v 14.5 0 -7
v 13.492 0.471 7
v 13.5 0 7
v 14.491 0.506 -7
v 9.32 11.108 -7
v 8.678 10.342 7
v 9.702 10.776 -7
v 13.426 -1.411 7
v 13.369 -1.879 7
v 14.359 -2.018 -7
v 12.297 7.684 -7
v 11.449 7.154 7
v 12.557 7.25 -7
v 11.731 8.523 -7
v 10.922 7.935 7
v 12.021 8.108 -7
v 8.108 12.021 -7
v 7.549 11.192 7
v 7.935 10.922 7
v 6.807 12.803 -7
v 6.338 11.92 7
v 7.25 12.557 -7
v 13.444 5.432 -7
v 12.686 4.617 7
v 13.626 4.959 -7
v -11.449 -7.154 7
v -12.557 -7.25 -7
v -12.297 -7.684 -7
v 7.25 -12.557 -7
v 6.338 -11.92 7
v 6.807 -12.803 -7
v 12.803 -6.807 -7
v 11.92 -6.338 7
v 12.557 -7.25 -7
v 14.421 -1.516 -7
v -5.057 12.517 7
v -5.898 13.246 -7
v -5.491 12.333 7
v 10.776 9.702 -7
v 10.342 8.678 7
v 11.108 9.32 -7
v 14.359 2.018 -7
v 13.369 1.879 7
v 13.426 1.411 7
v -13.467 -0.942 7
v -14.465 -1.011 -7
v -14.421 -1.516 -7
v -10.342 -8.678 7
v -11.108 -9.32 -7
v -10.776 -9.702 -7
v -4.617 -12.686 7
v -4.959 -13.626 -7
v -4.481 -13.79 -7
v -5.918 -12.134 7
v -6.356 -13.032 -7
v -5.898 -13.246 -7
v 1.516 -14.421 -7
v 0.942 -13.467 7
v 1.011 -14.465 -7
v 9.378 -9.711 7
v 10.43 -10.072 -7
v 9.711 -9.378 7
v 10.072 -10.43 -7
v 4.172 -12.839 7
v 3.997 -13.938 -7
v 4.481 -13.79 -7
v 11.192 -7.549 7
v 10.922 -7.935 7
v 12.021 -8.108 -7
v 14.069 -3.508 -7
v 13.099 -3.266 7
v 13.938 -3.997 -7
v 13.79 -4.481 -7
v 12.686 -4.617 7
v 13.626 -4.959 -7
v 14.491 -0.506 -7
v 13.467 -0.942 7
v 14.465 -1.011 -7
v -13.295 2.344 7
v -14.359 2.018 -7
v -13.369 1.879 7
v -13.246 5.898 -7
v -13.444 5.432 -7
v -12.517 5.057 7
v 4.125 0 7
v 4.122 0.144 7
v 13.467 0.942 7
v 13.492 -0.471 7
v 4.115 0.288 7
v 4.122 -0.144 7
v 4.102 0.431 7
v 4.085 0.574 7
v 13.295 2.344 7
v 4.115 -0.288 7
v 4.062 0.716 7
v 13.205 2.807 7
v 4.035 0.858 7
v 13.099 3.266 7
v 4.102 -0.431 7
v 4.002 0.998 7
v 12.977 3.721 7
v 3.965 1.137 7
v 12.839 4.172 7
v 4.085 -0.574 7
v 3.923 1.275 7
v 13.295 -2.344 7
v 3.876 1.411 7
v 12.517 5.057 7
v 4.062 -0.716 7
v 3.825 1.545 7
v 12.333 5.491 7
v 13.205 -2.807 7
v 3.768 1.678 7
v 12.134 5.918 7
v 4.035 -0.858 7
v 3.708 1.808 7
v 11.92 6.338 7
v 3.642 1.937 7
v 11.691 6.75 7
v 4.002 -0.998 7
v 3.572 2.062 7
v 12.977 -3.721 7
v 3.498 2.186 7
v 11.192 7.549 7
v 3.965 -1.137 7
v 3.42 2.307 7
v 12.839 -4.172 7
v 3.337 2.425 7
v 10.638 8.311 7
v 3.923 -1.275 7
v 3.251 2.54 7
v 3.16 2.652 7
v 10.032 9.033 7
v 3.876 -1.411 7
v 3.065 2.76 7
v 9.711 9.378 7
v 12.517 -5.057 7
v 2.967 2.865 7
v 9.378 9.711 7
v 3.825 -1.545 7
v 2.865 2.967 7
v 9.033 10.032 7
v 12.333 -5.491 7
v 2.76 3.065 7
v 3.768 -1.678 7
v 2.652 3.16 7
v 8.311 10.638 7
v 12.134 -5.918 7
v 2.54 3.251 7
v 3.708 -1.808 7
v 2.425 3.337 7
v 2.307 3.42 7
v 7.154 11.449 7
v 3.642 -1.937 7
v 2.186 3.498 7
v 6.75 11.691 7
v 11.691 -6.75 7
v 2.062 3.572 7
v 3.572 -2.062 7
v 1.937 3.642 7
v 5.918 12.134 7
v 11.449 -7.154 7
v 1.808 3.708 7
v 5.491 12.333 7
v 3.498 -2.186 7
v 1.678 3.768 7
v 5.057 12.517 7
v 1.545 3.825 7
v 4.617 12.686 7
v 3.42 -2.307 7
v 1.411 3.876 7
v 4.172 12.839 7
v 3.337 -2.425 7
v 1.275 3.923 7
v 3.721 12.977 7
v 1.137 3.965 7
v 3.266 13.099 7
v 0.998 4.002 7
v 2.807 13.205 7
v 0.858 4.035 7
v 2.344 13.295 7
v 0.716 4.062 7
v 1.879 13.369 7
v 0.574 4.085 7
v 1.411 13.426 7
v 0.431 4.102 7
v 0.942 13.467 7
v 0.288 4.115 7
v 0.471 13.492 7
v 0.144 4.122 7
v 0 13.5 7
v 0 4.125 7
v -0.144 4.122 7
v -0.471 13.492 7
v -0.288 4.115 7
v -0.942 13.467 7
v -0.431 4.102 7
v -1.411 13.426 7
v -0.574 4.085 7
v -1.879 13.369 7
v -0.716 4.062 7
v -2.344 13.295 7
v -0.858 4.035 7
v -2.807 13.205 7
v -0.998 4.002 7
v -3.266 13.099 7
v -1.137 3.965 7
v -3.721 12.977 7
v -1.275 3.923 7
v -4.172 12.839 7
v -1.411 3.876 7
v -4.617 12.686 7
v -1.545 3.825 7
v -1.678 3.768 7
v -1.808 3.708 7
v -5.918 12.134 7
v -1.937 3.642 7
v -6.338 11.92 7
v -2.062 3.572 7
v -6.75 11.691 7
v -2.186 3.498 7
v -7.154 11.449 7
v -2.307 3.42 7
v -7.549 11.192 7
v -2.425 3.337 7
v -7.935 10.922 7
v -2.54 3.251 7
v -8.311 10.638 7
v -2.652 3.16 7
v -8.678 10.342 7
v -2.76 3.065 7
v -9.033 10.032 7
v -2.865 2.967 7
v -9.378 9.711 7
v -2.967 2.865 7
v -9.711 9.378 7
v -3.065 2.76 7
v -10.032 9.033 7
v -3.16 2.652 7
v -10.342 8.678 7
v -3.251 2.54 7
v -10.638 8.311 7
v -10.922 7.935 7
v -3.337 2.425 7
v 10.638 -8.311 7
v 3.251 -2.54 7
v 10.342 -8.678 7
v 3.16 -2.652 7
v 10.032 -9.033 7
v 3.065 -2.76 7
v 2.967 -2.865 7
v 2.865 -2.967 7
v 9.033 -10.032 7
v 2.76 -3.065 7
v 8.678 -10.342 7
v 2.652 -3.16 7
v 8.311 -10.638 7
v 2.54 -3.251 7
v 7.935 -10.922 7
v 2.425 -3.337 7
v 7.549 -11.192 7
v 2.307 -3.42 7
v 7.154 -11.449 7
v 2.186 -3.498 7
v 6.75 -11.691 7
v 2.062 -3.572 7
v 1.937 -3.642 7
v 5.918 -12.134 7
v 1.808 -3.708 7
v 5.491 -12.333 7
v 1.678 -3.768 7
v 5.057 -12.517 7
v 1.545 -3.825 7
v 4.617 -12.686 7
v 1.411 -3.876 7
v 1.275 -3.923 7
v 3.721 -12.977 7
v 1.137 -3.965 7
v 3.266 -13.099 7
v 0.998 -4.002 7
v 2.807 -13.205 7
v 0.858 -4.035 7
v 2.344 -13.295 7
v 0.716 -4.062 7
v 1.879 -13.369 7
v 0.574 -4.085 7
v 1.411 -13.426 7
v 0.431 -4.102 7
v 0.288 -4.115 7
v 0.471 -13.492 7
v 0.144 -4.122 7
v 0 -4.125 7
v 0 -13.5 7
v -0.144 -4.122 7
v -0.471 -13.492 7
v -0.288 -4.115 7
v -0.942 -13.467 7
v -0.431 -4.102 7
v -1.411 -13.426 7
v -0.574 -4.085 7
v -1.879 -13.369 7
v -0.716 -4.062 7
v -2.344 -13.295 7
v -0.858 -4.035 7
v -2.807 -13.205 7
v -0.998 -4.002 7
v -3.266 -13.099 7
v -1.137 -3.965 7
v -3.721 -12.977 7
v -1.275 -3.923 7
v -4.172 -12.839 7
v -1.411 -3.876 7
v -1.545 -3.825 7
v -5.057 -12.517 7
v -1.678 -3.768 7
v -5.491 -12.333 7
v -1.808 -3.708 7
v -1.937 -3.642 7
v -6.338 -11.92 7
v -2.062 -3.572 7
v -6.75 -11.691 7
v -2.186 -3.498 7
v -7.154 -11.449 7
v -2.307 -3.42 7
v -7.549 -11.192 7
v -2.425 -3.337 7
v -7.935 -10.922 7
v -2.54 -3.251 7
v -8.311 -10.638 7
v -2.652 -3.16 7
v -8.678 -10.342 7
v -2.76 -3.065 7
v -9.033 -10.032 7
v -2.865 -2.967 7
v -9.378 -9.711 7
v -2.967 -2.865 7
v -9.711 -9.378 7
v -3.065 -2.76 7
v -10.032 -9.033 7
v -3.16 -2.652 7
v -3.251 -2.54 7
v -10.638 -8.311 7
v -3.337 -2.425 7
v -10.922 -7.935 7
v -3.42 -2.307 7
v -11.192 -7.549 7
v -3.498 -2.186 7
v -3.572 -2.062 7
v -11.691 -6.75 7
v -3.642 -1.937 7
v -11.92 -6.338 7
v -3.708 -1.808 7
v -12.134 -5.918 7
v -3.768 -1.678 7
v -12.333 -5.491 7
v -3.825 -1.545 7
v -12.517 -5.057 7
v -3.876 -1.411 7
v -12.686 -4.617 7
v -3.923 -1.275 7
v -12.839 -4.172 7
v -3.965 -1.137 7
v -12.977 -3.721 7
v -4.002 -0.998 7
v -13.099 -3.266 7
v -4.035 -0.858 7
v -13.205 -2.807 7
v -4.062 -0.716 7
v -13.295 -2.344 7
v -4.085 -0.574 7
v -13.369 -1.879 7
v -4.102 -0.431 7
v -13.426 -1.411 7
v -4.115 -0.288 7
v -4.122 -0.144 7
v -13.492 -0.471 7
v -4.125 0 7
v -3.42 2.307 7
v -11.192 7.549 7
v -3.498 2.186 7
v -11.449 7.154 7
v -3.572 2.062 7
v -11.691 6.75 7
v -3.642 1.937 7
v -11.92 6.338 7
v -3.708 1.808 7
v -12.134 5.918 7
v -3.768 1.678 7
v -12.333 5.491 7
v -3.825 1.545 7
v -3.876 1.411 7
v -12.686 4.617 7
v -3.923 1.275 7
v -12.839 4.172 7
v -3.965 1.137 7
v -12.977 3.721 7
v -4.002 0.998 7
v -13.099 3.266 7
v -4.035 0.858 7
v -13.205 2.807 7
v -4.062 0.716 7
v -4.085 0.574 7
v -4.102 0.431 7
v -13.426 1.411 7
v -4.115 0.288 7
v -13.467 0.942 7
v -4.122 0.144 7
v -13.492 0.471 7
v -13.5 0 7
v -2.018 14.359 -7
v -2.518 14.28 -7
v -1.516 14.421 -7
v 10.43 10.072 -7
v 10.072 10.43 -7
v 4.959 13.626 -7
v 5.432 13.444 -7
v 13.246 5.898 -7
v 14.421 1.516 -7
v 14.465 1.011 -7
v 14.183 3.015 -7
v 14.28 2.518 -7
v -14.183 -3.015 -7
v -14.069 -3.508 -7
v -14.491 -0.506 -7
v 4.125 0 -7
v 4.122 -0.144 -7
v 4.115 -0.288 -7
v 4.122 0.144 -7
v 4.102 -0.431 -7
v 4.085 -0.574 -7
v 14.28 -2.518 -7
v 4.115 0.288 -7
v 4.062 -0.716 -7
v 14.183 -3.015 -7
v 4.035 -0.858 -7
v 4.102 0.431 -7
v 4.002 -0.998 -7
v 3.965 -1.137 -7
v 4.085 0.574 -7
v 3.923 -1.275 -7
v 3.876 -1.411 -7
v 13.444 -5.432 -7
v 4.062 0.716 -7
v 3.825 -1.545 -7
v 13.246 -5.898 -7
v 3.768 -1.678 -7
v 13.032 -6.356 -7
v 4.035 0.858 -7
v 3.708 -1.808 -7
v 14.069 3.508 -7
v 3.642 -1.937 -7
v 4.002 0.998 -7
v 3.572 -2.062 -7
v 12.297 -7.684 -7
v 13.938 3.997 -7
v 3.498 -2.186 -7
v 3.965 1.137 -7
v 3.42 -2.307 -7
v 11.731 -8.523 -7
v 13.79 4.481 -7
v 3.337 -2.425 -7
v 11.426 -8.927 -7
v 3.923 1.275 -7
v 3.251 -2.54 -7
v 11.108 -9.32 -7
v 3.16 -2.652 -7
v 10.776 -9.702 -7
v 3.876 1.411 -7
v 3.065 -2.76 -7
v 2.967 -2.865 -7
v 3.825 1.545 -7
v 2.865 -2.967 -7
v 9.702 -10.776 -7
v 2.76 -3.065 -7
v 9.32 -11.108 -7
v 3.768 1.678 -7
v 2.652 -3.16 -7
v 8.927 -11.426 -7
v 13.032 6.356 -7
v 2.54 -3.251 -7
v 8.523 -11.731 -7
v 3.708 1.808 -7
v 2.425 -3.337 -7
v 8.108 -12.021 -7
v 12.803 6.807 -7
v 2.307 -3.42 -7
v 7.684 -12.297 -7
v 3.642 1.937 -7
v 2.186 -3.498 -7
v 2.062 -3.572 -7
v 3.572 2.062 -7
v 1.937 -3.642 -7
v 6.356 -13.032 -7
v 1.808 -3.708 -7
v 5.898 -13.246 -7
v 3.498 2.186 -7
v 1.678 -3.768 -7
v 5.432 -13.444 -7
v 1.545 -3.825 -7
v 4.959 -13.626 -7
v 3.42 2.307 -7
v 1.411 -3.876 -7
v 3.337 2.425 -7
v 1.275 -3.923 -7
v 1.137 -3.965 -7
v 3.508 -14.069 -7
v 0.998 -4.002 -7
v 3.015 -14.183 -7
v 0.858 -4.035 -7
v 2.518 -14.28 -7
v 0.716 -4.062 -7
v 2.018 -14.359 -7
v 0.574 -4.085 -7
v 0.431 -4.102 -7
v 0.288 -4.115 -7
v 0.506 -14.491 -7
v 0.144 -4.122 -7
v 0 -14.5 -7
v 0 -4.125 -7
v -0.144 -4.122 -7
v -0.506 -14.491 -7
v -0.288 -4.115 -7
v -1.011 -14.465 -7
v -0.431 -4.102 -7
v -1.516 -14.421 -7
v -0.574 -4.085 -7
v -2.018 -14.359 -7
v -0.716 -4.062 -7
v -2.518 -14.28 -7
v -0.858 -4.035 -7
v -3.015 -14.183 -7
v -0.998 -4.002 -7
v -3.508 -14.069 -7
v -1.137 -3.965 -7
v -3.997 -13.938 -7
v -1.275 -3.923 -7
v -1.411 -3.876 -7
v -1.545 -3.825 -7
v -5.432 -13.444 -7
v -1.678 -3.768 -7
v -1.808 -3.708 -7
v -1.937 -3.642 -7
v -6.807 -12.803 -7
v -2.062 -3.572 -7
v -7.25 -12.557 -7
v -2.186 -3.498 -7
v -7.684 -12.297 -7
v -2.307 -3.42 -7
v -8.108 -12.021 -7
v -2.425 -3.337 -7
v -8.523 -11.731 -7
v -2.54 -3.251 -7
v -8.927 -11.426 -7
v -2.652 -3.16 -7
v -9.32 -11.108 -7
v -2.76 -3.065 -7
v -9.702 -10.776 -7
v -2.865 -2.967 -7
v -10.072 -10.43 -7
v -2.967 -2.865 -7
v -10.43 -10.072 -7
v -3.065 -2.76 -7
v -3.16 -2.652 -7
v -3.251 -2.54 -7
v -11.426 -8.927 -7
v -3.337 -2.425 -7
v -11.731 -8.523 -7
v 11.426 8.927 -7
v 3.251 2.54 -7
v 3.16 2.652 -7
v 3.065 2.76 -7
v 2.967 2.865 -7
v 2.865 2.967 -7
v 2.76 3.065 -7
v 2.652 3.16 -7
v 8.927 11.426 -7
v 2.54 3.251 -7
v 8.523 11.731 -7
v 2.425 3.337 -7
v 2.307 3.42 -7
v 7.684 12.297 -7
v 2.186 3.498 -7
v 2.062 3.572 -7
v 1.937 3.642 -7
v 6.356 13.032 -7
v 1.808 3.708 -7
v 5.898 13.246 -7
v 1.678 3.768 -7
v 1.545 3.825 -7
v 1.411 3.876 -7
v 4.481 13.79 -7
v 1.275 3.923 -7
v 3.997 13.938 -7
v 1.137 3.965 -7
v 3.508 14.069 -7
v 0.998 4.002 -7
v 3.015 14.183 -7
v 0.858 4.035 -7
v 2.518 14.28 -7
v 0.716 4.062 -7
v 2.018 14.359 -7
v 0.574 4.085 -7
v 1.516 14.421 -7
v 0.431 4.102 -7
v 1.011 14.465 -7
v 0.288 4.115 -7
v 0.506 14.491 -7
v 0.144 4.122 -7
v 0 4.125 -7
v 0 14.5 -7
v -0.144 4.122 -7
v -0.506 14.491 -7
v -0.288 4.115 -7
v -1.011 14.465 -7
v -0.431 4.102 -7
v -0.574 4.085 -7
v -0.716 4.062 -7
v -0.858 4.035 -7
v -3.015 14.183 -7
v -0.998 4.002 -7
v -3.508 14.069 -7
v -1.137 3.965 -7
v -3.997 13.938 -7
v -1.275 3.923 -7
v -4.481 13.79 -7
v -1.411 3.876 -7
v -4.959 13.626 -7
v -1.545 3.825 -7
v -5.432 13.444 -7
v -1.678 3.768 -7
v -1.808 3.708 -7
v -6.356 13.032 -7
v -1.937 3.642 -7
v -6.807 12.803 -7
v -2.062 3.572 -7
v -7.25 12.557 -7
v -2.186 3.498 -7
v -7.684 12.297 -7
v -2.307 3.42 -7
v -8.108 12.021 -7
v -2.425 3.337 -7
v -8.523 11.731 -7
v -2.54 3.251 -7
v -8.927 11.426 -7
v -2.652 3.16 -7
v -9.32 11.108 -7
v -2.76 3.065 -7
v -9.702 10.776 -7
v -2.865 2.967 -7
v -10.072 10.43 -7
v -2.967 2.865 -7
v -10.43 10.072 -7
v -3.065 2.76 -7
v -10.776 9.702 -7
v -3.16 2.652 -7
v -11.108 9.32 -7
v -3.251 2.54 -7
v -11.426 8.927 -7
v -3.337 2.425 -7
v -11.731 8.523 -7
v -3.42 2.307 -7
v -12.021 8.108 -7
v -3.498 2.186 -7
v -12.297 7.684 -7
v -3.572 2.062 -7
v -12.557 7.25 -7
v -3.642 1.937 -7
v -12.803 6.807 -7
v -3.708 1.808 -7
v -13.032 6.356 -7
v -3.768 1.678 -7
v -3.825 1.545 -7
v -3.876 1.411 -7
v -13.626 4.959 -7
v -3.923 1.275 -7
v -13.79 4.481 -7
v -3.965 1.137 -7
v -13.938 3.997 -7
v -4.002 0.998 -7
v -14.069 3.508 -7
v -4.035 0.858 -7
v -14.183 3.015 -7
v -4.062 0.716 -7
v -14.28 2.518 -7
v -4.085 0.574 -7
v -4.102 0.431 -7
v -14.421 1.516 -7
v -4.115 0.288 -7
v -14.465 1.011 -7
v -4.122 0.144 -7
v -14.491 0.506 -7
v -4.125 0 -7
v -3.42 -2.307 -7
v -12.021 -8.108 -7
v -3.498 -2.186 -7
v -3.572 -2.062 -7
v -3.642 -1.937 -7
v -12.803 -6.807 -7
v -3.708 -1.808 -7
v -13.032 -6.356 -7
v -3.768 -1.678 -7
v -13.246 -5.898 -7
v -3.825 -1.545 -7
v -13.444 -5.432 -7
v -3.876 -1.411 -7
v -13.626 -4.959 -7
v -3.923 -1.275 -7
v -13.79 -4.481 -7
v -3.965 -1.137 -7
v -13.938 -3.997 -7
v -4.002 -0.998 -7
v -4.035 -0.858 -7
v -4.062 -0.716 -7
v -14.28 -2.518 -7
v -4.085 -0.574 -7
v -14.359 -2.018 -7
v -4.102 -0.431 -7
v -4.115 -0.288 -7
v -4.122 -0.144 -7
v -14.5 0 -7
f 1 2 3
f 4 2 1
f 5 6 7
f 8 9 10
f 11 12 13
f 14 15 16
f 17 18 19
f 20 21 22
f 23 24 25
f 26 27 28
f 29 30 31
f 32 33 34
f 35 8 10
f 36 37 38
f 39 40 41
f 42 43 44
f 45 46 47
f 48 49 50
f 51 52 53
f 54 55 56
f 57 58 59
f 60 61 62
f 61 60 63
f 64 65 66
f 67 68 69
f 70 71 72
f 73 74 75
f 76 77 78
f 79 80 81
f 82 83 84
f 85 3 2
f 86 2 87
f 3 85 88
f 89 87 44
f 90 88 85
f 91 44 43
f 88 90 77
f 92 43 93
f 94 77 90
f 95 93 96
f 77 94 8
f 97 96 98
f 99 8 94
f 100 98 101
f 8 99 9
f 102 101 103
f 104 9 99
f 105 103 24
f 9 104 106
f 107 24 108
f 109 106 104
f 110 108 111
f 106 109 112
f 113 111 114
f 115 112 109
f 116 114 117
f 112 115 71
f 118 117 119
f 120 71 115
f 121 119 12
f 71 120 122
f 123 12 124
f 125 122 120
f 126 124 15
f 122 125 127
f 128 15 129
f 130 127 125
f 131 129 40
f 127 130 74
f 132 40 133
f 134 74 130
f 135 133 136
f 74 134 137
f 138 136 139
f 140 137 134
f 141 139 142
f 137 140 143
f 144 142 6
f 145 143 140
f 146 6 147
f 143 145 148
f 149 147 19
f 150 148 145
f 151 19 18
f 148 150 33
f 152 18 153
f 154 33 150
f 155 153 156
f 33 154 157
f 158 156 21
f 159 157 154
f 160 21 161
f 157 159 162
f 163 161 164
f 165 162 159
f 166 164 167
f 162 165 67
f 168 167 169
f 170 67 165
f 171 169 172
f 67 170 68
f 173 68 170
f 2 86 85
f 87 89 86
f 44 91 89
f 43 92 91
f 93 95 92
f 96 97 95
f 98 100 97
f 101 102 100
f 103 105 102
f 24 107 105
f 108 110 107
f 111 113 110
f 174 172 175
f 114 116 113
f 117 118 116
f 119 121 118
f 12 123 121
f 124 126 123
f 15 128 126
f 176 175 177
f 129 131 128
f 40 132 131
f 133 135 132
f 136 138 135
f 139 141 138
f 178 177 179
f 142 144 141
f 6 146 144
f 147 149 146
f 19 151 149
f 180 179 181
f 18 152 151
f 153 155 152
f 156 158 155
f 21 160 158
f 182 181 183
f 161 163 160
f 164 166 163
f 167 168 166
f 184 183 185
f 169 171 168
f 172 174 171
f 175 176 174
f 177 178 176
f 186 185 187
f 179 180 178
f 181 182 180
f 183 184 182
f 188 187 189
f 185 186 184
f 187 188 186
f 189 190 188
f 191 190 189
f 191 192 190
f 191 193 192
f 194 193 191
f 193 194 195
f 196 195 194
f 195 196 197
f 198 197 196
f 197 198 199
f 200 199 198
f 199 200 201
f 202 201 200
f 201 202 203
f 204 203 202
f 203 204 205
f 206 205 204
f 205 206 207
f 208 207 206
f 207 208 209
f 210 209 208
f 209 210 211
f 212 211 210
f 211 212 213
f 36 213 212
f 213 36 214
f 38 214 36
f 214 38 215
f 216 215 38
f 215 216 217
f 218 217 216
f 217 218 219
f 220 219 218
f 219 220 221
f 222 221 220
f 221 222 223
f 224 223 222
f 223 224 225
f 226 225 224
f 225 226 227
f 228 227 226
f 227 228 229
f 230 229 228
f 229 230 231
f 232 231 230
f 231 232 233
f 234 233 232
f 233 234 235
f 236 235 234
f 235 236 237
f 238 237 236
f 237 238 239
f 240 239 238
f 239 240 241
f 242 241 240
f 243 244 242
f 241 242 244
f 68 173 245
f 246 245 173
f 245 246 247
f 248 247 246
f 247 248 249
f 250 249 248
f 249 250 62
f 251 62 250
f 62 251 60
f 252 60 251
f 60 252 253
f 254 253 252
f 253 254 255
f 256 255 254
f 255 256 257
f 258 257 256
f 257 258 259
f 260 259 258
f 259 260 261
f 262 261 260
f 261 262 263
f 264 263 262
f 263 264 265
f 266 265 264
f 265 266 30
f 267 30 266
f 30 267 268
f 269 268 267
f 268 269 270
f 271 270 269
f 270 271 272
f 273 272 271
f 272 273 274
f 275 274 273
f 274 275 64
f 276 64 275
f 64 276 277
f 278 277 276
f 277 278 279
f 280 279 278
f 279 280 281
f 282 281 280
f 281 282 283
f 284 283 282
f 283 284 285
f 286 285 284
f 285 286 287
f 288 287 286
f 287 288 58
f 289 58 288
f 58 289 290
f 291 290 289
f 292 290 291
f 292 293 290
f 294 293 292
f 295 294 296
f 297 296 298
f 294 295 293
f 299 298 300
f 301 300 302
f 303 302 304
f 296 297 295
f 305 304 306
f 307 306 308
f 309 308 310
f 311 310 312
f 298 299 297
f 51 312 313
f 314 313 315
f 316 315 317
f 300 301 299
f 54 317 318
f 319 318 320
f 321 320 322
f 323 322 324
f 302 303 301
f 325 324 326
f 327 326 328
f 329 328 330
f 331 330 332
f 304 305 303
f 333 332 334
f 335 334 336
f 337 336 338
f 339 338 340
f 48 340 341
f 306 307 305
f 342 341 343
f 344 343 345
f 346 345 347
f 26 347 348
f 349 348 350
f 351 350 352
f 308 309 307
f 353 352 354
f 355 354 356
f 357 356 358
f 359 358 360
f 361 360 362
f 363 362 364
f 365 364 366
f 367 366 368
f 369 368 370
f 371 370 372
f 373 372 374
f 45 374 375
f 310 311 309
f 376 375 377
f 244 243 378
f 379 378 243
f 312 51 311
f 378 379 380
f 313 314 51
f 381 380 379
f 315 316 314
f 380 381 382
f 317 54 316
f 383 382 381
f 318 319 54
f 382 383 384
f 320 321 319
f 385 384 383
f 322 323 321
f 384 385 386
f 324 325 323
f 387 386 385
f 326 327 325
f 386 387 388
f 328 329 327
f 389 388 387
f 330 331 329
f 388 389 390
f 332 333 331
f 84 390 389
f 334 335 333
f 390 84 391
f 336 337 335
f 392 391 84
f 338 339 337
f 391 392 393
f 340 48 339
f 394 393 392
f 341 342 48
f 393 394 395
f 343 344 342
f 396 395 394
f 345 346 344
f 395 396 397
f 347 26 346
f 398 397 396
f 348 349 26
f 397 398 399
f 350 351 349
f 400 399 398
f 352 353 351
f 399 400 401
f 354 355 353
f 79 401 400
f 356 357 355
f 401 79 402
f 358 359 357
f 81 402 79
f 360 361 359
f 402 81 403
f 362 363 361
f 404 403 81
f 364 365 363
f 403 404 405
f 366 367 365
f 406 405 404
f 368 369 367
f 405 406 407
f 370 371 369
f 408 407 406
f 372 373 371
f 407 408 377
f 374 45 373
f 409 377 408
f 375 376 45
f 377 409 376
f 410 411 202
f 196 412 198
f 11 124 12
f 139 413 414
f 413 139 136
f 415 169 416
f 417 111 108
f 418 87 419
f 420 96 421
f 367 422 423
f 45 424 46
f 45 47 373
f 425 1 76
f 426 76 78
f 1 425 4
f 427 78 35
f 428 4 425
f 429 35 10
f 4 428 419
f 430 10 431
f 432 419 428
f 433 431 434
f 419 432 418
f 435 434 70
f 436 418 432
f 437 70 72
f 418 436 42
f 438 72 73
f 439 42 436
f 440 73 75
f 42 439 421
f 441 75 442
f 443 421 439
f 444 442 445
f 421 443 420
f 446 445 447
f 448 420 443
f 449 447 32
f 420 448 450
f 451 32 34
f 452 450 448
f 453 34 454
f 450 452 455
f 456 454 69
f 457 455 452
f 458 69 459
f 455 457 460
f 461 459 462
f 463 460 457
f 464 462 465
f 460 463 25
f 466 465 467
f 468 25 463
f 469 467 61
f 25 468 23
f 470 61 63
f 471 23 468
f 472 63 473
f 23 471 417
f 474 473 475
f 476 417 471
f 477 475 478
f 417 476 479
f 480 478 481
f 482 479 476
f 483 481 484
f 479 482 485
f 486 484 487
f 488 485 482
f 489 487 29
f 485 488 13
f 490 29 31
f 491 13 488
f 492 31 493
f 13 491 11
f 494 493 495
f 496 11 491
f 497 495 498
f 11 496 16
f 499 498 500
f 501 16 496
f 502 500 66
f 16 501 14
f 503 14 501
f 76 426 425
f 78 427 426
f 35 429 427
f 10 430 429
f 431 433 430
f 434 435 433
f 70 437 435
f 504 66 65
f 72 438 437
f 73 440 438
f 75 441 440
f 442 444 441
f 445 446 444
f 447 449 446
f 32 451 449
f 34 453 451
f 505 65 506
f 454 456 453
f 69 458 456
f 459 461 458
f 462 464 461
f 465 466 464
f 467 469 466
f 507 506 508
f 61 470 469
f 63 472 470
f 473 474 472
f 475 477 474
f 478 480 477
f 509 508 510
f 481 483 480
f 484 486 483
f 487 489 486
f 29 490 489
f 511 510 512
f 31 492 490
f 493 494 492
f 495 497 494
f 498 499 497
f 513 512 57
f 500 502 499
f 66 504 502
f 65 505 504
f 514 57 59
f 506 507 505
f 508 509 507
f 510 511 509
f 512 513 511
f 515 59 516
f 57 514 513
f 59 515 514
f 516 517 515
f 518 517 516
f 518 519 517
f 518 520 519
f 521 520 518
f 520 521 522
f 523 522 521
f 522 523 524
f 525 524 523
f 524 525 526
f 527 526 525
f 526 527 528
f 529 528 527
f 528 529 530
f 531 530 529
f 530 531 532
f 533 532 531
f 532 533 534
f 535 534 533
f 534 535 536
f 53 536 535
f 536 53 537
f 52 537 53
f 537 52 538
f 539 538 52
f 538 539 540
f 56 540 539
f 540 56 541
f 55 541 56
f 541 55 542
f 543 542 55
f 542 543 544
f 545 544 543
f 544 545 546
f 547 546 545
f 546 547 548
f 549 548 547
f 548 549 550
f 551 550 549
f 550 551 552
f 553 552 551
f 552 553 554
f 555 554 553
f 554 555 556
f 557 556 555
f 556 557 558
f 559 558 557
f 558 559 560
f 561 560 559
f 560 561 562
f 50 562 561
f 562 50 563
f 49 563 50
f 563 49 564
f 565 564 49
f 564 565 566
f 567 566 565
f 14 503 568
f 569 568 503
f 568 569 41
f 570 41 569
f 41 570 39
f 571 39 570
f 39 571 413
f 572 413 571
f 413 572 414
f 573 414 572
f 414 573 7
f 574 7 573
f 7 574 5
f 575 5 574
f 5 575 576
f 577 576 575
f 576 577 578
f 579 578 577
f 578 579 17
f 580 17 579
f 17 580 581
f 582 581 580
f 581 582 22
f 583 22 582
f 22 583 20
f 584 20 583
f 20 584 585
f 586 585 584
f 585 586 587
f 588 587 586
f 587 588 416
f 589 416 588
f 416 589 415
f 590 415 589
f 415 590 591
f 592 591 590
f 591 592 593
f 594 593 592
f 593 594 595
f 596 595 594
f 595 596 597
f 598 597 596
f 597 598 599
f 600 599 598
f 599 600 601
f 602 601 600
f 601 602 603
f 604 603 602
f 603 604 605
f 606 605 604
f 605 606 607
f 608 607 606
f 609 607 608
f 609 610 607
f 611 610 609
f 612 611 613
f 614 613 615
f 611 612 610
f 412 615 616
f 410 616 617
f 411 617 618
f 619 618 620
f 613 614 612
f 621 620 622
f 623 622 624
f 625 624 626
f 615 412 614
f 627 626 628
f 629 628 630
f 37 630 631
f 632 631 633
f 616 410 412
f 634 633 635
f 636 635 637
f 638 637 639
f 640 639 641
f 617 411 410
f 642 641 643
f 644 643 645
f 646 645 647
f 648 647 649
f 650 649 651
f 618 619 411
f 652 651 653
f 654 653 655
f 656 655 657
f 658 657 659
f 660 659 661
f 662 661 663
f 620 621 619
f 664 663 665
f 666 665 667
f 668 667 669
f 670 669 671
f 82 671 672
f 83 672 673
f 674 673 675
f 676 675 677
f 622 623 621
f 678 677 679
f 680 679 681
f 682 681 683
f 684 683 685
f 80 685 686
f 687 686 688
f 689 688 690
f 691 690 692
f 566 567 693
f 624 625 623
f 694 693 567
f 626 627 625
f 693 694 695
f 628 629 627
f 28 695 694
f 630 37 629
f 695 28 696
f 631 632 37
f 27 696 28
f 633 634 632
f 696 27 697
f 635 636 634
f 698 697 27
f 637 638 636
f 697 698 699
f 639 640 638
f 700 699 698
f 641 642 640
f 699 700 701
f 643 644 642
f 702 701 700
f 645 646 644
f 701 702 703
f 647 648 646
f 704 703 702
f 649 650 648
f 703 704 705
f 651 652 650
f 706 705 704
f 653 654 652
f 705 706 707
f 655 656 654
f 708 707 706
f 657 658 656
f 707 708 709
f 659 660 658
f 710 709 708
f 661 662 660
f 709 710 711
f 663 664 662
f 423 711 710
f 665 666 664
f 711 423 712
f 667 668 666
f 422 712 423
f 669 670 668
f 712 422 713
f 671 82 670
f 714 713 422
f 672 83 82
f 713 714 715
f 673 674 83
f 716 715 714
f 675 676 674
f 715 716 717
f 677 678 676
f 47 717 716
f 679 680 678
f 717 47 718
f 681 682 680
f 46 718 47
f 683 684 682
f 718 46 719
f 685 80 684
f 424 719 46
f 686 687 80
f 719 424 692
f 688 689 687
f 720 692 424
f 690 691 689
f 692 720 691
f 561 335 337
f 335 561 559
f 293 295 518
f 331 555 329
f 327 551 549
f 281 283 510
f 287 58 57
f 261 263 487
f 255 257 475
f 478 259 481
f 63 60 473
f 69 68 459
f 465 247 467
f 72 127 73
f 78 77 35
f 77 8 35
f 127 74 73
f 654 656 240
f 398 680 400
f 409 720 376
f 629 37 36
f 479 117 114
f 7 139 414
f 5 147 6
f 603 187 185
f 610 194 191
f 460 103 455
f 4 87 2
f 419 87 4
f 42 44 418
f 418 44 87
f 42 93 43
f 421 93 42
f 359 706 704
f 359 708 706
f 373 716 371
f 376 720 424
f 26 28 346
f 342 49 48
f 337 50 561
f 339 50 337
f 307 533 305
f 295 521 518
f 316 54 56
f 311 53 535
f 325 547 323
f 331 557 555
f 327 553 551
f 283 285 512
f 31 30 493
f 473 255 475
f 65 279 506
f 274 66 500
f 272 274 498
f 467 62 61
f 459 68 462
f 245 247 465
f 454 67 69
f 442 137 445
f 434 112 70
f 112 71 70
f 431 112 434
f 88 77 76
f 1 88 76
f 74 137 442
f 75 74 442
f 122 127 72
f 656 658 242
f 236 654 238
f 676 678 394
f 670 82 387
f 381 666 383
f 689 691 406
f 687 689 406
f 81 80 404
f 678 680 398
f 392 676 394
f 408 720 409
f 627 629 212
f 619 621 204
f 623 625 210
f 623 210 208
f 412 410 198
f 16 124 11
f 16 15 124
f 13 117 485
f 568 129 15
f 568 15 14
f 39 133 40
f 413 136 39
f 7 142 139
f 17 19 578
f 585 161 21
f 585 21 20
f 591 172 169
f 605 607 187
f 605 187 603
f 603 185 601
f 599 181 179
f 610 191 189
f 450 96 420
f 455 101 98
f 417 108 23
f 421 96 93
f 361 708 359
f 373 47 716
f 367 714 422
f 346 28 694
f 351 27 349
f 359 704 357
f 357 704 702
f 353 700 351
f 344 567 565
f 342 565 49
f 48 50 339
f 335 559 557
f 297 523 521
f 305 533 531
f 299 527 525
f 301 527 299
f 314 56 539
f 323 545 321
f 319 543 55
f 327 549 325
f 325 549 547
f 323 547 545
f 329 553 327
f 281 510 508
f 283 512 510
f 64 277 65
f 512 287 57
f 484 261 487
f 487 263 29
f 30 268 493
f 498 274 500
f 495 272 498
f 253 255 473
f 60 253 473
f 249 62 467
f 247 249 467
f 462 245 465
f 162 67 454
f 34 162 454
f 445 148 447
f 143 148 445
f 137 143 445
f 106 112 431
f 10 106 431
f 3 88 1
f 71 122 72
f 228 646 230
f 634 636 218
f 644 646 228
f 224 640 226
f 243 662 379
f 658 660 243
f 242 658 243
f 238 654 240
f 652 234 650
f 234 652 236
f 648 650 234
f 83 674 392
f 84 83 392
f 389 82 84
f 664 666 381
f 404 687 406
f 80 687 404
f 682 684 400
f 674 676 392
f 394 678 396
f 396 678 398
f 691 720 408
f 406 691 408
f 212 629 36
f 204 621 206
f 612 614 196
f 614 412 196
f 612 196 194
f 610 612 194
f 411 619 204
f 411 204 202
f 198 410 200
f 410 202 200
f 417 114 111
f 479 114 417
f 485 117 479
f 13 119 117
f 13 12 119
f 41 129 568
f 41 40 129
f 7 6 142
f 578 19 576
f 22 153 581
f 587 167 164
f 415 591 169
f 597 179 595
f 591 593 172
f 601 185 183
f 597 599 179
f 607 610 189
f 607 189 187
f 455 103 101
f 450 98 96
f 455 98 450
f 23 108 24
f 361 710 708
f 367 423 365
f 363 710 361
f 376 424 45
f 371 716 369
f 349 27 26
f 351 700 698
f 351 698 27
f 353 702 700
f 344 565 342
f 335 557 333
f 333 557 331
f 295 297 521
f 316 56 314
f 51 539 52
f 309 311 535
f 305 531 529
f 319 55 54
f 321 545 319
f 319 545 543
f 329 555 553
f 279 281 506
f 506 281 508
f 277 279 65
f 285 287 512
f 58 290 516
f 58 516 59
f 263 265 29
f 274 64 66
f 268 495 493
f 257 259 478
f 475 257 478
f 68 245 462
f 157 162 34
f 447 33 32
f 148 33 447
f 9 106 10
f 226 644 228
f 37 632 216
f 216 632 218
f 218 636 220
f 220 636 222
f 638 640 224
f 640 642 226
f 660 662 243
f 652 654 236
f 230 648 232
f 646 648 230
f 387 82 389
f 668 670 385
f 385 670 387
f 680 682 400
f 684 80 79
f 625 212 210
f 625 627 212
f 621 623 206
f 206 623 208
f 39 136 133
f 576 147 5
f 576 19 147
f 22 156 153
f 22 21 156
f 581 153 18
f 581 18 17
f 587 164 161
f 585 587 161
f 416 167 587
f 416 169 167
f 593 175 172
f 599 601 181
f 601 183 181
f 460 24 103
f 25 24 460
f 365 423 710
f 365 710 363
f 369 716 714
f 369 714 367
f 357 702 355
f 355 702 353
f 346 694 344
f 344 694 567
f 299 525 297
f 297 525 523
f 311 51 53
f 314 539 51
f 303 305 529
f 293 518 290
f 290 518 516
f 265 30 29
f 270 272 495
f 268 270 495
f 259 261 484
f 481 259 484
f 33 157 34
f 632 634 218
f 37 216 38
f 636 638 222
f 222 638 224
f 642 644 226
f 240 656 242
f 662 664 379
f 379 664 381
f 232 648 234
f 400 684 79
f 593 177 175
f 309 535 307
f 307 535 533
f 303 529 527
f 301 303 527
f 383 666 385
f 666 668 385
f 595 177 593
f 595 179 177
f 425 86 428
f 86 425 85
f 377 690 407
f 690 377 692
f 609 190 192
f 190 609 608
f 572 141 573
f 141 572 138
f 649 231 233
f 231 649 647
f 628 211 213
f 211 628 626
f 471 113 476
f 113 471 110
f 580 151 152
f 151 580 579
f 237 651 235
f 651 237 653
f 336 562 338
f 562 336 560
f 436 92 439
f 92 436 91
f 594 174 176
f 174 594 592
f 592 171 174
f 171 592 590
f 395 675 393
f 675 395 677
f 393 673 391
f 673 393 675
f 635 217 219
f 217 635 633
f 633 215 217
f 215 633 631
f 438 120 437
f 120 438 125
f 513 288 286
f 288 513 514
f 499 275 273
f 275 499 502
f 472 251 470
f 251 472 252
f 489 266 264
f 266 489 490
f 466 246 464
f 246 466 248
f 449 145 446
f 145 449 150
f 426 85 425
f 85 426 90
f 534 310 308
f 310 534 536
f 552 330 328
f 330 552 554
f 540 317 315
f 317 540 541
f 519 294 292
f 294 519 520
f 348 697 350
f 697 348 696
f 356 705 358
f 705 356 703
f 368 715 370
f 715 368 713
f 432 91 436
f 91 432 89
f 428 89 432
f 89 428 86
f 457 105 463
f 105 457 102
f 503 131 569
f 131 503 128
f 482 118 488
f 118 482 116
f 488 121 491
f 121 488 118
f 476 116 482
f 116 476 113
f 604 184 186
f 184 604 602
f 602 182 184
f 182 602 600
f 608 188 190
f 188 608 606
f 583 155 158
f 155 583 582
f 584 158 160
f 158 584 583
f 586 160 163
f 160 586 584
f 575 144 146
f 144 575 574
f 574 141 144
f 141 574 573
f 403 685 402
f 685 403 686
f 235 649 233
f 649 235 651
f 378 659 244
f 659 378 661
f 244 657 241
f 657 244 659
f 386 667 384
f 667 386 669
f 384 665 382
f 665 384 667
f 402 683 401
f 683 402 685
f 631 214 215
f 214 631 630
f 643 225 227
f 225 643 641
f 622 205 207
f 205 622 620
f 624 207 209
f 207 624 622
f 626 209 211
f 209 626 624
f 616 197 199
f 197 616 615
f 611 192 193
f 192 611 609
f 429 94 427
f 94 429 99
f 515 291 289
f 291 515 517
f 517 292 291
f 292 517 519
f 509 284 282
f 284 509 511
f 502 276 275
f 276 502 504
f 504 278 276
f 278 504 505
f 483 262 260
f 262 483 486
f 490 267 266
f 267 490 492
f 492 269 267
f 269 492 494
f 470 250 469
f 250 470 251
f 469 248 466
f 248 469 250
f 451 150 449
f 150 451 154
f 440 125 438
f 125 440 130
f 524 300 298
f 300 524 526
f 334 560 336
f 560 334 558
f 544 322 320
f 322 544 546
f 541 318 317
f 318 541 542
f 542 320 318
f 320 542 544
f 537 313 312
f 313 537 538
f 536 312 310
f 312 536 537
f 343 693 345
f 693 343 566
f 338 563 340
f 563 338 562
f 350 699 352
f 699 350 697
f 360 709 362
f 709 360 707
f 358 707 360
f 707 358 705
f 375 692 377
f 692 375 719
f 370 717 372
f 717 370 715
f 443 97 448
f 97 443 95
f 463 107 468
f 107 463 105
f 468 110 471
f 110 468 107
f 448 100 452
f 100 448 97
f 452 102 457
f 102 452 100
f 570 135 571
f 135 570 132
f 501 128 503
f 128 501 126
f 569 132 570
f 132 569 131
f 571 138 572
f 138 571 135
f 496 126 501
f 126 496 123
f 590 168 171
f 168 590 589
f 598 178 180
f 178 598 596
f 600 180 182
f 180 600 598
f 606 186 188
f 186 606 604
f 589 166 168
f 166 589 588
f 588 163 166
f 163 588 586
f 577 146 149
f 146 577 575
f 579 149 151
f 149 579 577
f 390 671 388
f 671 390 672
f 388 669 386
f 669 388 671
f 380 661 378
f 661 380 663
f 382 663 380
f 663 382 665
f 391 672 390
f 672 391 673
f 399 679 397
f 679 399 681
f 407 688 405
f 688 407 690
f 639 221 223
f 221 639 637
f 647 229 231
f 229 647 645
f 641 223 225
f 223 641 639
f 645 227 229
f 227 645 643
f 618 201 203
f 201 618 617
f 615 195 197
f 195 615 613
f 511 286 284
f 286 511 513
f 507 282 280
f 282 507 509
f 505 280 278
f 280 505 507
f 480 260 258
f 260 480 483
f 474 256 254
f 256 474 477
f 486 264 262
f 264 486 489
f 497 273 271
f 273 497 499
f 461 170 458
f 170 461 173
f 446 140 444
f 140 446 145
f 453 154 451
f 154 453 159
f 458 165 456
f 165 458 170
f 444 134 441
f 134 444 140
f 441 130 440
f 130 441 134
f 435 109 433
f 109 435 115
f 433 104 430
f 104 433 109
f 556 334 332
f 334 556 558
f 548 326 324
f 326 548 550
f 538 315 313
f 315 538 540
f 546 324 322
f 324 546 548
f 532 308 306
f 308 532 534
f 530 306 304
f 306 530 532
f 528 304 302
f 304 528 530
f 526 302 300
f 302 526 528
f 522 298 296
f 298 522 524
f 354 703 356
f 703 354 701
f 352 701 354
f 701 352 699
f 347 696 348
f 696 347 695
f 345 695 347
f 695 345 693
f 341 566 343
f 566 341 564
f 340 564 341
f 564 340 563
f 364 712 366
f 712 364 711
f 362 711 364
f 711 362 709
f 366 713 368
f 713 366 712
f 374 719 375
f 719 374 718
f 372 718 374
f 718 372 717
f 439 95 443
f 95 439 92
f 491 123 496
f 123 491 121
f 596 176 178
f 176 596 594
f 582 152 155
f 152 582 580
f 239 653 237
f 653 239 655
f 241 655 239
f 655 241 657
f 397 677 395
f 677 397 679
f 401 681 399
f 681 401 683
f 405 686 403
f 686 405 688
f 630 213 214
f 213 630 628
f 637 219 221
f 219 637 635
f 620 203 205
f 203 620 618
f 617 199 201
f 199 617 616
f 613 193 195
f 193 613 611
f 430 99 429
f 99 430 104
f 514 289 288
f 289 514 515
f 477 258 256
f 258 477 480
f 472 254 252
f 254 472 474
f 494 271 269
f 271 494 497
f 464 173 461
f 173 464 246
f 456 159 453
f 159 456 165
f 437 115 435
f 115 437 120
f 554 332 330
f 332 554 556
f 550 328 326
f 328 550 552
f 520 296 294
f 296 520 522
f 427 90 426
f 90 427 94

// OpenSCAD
//cube([120,120,3], center = true);
//translate([-45,-45,0])cylinder(h = 3, r=15, $fn = 180, center = true);
//rotate_extrude(convexity = 10, $fn = A) translate([20+1.5, 0, 0])circle(d = 3, $fn = B);





difference(){
cylinder(h = 14, d1=29, d2=27, $fn = 180, center = true);

cylinder(h = 15, d=8.25, $fn = 180, center = true);

}
 
